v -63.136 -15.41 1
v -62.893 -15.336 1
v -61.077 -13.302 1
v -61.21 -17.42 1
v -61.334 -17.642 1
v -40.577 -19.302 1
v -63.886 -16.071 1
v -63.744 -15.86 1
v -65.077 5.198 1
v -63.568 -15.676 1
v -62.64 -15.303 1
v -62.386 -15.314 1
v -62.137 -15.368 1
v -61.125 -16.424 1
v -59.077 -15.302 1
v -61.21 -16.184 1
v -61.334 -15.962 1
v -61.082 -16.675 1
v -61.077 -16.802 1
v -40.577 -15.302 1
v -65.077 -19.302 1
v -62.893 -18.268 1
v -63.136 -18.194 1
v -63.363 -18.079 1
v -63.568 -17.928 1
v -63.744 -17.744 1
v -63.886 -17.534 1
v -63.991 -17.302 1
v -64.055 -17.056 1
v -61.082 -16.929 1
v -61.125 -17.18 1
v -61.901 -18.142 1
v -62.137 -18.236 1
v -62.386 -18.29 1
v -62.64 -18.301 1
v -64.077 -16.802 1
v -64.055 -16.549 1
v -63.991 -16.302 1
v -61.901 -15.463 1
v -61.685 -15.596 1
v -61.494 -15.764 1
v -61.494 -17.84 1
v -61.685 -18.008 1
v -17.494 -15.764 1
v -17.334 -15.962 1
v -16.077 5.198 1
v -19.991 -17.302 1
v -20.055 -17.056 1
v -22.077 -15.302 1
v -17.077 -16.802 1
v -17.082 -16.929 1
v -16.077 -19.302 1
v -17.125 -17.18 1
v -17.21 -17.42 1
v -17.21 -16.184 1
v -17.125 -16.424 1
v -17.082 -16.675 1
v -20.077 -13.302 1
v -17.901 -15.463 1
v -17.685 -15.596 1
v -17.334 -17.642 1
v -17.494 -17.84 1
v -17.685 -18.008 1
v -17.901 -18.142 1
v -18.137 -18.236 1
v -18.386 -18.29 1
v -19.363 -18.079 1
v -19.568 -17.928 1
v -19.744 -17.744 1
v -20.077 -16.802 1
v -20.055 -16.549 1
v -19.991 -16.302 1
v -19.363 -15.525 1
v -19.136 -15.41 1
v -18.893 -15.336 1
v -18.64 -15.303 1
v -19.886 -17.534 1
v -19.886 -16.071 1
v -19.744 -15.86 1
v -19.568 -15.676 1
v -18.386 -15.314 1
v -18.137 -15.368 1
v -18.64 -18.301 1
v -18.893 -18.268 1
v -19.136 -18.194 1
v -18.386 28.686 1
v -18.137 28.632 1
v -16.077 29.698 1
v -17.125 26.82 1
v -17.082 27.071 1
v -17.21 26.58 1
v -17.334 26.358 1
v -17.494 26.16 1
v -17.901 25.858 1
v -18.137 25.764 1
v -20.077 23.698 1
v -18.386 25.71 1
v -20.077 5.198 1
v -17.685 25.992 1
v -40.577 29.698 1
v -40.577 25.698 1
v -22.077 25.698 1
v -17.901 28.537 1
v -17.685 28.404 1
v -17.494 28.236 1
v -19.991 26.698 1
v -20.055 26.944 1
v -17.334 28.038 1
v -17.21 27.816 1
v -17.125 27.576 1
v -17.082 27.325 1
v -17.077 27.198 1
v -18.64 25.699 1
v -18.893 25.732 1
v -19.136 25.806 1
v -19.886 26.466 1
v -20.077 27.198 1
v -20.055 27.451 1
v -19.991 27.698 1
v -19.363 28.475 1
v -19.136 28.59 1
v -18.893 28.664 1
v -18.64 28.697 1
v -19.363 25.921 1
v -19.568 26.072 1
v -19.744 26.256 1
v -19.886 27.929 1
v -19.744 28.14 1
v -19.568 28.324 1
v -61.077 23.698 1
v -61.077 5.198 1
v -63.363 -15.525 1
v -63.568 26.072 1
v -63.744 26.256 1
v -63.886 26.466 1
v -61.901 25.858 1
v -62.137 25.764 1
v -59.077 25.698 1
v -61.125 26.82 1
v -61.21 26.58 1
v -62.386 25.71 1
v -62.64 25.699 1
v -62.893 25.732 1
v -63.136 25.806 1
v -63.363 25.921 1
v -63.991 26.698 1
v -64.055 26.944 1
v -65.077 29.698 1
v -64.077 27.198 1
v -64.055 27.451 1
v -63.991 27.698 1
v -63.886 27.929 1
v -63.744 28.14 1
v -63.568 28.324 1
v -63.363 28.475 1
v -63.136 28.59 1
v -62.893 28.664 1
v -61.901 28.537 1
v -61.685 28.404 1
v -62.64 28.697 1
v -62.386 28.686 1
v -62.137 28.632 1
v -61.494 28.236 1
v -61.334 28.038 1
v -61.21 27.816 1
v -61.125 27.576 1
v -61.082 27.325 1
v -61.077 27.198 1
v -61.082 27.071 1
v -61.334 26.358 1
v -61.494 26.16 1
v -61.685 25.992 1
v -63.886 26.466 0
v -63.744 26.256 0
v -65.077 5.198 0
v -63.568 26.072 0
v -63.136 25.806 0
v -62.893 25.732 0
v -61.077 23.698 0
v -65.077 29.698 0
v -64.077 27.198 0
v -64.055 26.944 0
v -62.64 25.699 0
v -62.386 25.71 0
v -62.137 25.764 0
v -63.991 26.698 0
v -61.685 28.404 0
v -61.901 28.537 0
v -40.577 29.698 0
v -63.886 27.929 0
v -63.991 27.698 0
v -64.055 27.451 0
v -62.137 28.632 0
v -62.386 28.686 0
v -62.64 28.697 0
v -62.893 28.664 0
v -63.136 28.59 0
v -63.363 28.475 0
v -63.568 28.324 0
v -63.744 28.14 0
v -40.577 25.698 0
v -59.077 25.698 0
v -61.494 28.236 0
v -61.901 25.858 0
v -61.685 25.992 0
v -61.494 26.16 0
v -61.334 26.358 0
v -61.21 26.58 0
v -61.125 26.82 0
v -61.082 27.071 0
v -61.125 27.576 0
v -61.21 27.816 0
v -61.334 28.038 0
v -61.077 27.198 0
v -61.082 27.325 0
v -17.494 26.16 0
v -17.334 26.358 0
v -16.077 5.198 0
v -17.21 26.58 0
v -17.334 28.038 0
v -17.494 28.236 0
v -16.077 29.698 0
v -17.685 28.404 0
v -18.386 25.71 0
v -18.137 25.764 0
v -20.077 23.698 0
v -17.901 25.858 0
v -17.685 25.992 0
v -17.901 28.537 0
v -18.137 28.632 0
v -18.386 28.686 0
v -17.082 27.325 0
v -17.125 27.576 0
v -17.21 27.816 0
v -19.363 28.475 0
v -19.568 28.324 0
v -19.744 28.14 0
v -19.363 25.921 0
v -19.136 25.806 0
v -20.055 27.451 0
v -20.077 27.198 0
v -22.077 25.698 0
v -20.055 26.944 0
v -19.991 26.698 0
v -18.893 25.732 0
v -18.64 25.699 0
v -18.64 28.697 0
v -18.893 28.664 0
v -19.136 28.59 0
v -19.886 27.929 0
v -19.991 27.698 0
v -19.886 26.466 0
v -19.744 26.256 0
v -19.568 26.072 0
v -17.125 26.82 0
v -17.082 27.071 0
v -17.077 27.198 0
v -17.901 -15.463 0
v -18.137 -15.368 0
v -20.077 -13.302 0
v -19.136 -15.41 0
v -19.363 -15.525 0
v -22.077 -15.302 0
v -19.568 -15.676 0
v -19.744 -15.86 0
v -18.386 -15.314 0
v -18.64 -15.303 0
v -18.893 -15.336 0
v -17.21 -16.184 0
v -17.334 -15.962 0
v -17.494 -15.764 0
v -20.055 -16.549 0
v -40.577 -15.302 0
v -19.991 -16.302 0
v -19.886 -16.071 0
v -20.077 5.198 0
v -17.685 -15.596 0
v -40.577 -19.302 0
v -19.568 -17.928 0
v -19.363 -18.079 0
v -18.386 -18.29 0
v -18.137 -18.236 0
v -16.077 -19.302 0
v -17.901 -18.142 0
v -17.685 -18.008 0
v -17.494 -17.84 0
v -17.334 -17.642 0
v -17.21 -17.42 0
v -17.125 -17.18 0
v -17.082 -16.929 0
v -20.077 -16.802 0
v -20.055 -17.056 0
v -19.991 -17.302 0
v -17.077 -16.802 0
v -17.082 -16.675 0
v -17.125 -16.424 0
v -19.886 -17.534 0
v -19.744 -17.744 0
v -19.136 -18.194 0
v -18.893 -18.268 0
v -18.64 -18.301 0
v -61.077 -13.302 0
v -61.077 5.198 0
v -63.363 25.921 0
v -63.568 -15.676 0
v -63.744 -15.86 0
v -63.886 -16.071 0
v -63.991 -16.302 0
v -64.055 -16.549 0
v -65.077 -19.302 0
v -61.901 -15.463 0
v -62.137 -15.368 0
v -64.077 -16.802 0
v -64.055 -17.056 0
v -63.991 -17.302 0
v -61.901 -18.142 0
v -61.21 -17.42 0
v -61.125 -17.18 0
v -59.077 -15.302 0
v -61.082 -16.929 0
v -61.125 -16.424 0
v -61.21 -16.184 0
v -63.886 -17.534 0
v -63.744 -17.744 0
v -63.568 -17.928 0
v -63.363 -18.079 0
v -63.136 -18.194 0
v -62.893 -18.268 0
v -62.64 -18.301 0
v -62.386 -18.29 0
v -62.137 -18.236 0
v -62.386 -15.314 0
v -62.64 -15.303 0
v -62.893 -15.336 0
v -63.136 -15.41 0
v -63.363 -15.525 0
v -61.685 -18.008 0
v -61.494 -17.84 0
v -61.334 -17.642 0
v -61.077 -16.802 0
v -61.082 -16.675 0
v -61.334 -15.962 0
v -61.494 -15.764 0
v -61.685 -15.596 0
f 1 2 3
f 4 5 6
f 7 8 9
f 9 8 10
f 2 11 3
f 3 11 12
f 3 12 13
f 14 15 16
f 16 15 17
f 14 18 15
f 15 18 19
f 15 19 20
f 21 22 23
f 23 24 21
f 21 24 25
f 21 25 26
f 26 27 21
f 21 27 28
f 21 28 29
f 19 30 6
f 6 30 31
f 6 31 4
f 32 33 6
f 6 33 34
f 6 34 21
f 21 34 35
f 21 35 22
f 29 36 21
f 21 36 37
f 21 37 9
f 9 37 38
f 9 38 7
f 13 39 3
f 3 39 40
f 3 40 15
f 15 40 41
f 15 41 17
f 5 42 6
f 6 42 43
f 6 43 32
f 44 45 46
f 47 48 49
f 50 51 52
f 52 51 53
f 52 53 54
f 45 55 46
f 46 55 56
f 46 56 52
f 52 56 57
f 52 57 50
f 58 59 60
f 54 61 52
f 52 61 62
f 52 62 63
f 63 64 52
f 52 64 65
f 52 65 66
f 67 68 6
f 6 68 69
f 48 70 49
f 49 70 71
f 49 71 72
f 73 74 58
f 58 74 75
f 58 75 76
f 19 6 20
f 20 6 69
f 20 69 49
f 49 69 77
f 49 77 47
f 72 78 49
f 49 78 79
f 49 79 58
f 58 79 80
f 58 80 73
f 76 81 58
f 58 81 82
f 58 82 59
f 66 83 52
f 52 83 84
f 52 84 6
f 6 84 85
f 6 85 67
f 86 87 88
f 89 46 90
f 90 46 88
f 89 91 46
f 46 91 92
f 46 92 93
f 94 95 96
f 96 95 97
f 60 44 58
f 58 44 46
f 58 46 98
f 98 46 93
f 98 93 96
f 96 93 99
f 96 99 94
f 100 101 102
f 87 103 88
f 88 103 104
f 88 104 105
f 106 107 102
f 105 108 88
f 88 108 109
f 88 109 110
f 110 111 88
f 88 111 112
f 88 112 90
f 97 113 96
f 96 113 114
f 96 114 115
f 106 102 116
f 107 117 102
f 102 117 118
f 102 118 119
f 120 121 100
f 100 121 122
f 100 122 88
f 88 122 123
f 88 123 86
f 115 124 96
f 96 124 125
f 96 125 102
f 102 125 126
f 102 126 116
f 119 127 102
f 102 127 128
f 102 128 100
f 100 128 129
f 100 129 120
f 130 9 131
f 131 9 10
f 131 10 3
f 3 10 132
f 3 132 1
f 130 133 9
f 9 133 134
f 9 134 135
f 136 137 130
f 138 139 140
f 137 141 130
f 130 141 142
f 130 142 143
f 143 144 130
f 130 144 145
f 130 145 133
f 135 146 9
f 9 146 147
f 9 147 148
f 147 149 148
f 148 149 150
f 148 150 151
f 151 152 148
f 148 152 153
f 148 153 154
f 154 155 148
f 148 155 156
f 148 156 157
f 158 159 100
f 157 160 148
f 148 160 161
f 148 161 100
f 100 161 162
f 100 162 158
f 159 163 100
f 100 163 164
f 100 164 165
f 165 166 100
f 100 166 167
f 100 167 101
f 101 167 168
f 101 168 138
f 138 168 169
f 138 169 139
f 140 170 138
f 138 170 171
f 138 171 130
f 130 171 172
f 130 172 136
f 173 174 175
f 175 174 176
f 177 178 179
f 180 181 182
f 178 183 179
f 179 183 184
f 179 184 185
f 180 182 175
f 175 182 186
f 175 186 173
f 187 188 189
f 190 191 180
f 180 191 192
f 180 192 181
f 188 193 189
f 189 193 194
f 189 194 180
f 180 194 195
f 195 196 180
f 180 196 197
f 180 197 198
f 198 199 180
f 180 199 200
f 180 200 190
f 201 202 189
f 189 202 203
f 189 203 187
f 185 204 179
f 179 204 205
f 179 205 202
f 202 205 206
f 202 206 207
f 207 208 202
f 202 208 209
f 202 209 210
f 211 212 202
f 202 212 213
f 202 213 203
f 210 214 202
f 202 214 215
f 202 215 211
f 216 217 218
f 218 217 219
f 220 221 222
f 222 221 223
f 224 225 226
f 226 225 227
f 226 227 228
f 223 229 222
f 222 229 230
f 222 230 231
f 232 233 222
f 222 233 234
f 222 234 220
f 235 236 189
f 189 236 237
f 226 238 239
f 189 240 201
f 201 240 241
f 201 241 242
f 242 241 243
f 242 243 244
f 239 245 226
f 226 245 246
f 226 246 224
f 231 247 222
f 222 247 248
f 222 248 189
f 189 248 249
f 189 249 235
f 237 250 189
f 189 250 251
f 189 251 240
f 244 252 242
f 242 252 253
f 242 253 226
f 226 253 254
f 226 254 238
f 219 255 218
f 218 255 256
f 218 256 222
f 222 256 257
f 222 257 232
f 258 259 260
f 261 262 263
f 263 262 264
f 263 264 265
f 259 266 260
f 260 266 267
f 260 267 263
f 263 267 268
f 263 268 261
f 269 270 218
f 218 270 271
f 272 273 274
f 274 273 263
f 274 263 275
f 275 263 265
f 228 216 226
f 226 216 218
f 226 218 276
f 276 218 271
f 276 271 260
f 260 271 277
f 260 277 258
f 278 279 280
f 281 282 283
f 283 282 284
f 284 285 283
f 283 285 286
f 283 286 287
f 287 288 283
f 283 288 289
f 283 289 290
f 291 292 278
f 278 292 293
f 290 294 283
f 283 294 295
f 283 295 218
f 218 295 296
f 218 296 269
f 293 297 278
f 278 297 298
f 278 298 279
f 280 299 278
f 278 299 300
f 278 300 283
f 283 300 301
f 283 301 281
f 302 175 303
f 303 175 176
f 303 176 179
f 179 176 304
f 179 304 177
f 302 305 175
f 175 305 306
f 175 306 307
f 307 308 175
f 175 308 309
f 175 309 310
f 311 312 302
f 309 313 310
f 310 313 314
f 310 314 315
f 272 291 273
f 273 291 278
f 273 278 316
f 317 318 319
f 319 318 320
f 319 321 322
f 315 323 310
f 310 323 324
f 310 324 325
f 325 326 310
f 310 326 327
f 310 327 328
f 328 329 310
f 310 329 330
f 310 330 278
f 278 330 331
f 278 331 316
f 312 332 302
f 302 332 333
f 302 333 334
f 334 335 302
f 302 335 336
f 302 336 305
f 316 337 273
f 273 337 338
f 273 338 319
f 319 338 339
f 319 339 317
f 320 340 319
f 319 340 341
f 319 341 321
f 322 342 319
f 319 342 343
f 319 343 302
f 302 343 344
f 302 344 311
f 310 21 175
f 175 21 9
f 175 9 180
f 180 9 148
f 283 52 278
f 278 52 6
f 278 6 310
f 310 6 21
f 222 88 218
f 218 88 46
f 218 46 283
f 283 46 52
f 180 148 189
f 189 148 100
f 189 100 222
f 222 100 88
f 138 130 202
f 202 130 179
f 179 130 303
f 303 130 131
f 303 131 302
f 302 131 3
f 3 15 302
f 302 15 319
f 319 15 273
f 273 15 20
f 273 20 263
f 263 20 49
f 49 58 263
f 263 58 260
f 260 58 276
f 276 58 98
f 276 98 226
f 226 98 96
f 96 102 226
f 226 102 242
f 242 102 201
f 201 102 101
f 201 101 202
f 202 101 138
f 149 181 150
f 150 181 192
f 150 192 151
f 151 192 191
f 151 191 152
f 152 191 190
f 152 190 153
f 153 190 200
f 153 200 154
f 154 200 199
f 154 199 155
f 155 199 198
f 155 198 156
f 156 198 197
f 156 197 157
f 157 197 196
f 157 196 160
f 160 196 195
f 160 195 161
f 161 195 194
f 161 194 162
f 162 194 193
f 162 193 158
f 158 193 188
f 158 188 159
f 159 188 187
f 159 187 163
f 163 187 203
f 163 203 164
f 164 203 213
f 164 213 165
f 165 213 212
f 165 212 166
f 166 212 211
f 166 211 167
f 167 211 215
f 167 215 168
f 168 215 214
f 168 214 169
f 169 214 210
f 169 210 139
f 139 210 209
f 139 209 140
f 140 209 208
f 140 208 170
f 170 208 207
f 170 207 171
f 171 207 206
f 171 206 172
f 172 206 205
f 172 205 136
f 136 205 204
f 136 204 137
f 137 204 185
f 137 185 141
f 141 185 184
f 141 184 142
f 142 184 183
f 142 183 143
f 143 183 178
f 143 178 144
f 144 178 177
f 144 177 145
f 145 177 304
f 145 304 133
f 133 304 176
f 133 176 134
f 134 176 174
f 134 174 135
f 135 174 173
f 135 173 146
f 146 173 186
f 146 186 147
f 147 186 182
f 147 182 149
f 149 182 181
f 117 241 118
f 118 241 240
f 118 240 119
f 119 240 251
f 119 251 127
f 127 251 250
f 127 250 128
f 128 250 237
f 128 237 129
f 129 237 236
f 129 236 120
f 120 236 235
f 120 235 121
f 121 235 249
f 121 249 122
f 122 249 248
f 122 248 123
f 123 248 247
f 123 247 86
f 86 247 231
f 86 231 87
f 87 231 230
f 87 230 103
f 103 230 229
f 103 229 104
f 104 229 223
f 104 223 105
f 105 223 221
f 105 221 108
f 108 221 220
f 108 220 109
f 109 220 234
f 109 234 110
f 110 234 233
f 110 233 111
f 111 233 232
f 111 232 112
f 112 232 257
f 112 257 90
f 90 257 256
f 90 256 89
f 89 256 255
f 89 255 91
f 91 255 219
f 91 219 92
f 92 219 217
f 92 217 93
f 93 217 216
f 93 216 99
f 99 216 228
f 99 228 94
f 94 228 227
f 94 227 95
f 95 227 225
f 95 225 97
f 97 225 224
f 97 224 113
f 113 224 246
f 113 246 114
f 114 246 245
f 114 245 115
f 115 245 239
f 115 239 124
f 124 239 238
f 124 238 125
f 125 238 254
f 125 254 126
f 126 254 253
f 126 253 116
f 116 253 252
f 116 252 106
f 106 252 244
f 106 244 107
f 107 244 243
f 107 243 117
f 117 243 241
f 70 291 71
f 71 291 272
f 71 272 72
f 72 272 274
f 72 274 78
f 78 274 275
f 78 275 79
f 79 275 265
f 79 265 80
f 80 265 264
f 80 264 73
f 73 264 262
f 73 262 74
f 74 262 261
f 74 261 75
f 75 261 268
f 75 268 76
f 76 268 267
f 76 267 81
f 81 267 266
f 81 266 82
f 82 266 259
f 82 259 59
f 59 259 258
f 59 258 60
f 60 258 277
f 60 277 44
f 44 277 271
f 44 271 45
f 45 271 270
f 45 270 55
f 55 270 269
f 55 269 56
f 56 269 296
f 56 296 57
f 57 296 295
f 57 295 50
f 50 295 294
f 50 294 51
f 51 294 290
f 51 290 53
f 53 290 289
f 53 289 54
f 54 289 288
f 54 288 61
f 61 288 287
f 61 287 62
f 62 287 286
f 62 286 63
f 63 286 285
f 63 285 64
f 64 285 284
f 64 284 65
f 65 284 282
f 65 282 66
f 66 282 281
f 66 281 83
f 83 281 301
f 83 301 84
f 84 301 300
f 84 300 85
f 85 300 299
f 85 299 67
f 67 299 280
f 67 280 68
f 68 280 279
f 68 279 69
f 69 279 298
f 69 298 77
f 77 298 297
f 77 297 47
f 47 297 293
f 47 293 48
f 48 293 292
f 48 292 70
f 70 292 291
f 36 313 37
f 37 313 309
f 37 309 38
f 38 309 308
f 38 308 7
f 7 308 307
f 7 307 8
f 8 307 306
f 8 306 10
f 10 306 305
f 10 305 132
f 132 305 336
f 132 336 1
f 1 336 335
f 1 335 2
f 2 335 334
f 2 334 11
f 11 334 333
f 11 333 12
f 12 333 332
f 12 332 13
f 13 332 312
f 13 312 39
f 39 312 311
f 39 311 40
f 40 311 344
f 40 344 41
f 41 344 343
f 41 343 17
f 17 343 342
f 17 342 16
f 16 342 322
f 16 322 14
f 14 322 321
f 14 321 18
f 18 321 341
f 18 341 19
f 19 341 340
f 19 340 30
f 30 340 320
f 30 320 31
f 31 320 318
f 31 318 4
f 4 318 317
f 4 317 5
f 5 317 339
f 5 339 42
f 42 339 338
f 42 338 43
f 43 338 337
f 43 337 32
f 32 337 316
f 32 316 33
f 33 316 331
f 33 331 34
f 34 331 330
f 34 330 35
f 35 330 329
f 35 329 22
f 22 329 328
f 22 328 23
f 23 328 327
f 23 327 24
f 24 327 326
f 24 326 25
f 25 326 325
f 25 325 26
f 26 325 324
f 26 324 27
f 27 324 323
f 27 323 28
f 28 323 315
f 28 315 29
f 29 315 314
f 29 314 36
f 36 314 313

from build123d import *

# Parameters (mm, degrees)
CROQUIS1_W              = 49
CROQUIS1_H              = 49
CROQUIS1_R              = 1.5
SALIENTE_EXTRUIR1_DEPTH = 1


with BuildPart() as part:
    # Croquis1 → Saliente-Extruir1 (new body)
    with BuildSketch(Plane.XY):
        with Locations((-40.576557533, 5.197871677)):
            Rectangle(CROQUIS1_W, CROQUIS1_H)
        with Locations((-62.576557533, 27.197871677)):
            Circle(CROQUIS1_R, mode=Mode.SUBTRACT)
        with Locations((-18.576557533, 27.197871677)):
            Circle(CROQUIS1_R, mode=Mode.SUBTRACT)
        with Locations((-18.576557533, -16.802128323)):
            Circle(CROQUIS1_R, mode=Mode.SUBTRACT)
        with Locations((-62.576557533, -16.802128323)):
            Circle(CROQUIS1_R, mode=Mode.SUBTRACT)
        Polygon((-61.076557533, 23.697871677), (-61.076557533, -13.302128323), (-59.076557533, -15.302128323), (-22.076557533, -15.302128323), (-20.076557533, -13.302128323), (-20.076557533, 23.697871677), (-22.076557533, 25.697871677), (-59.076557533, 25.697871677), align=None, mode=Mode.SUBTRACT)
    extrude(amount=SALIENTE_EXTRUIR1_DEPTH)


solid = part.part
